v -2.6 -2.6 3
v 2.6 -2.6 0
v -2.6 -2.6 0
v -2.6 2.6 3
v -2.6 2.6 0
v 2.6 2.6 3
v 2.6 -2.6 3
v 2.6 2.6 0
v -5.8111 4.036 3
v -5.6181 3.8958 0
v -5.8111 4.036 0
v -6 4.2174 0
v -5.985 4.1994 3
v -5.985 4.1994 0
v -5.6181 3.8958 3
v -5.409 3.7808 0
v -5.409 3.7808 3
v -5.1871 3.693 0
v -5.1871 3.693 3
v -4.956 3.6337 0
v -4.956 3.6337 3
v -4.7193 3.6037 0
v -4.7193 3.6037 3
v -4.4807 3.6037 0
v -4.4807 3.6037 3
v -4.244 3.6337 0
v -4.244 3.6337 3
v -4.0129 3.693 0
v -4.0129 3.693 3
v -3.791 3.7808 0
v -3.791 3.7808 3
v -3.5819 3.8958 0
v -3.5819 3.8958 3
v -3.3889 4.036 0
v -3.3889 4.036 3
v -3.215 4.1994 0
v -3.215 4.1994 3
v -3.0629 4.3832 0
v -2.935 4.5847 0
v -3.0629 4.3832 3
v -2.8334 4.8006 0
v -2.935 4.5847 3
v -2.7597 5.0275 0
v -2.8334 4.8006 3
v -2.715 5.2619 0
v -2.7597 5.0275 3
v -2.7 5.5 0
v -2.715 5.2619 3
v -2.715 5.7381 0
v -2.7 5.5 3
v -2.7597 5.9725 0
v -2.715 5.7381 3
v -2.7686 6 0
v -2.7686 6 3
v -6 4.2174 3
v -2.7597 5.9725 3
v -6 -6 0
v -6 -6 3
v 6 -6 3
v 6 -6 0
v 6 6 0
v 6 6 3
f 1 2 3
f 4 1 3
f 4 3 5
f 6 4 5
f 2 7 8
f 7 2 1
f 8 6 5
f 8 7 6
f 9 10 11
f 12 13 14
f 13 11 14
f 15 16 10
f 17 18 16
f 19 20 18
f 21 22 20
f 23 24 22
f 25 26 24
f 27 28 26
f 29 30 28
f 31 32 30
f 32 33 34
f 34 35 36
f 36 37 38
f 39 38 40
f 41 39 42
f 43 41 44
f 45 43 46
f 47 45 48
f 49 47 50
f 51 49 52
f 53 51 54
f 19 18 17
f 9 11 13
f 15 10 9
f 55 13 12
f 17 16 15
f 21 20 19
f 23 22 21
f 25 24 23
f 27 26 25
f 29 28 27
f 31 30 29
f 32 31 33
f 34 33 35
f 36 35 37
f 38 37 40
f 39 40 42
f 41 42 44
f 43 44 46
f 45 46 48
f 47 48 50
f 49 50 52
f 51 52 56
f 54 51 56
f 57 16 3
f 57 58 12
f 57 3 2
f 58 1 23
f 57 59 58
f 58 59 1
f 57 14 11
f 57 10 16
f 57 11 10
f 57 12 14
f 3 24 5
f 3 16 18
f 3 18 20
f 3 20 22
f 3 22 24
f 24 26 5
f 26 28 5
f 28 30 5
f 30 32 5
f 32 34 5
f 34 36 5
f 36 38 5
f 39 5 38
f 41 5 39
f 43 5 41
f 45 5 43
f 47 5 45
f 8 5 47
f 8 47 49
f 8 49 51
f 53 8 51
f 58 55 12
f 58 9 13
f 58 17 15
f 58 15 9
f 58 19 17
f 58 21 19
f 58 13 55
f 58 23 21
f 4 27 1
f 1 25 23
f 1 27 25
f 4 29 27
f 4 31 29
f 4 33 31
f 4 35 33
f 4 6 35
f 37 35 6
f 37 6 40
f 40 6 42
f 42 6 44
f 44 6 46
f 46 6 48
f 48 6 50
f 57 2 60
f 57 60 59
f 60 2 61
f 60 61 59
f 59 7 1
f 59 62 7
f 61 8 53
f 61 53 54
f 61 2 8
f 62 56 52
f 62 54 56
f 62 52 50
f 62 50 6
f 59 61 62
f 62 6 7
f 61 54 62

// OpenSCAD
$fn = 50;

difference() {
	union() {
		translate(v = [0, 0, 0]) {
			rotate(a = [0, 0, 0]) {
				difference() {
					union() {
						translate(v = [-6.0, -6.0, 0]) {
							cube(size = [12.0, 12.0, 3.0]);
						}
					}
					union() {
						translate(v = [-2.6, -2.6, -0.1]) {
							cube(size = [5.2, 5.2, 3.2]);
						}
						translate(v = [-4.6, 5.5, -0.1]) {
							cylinder(h = 3.2, r = 1.9000000000000001);
						}
					}
				}
			}
		}
	}
	union();
}
